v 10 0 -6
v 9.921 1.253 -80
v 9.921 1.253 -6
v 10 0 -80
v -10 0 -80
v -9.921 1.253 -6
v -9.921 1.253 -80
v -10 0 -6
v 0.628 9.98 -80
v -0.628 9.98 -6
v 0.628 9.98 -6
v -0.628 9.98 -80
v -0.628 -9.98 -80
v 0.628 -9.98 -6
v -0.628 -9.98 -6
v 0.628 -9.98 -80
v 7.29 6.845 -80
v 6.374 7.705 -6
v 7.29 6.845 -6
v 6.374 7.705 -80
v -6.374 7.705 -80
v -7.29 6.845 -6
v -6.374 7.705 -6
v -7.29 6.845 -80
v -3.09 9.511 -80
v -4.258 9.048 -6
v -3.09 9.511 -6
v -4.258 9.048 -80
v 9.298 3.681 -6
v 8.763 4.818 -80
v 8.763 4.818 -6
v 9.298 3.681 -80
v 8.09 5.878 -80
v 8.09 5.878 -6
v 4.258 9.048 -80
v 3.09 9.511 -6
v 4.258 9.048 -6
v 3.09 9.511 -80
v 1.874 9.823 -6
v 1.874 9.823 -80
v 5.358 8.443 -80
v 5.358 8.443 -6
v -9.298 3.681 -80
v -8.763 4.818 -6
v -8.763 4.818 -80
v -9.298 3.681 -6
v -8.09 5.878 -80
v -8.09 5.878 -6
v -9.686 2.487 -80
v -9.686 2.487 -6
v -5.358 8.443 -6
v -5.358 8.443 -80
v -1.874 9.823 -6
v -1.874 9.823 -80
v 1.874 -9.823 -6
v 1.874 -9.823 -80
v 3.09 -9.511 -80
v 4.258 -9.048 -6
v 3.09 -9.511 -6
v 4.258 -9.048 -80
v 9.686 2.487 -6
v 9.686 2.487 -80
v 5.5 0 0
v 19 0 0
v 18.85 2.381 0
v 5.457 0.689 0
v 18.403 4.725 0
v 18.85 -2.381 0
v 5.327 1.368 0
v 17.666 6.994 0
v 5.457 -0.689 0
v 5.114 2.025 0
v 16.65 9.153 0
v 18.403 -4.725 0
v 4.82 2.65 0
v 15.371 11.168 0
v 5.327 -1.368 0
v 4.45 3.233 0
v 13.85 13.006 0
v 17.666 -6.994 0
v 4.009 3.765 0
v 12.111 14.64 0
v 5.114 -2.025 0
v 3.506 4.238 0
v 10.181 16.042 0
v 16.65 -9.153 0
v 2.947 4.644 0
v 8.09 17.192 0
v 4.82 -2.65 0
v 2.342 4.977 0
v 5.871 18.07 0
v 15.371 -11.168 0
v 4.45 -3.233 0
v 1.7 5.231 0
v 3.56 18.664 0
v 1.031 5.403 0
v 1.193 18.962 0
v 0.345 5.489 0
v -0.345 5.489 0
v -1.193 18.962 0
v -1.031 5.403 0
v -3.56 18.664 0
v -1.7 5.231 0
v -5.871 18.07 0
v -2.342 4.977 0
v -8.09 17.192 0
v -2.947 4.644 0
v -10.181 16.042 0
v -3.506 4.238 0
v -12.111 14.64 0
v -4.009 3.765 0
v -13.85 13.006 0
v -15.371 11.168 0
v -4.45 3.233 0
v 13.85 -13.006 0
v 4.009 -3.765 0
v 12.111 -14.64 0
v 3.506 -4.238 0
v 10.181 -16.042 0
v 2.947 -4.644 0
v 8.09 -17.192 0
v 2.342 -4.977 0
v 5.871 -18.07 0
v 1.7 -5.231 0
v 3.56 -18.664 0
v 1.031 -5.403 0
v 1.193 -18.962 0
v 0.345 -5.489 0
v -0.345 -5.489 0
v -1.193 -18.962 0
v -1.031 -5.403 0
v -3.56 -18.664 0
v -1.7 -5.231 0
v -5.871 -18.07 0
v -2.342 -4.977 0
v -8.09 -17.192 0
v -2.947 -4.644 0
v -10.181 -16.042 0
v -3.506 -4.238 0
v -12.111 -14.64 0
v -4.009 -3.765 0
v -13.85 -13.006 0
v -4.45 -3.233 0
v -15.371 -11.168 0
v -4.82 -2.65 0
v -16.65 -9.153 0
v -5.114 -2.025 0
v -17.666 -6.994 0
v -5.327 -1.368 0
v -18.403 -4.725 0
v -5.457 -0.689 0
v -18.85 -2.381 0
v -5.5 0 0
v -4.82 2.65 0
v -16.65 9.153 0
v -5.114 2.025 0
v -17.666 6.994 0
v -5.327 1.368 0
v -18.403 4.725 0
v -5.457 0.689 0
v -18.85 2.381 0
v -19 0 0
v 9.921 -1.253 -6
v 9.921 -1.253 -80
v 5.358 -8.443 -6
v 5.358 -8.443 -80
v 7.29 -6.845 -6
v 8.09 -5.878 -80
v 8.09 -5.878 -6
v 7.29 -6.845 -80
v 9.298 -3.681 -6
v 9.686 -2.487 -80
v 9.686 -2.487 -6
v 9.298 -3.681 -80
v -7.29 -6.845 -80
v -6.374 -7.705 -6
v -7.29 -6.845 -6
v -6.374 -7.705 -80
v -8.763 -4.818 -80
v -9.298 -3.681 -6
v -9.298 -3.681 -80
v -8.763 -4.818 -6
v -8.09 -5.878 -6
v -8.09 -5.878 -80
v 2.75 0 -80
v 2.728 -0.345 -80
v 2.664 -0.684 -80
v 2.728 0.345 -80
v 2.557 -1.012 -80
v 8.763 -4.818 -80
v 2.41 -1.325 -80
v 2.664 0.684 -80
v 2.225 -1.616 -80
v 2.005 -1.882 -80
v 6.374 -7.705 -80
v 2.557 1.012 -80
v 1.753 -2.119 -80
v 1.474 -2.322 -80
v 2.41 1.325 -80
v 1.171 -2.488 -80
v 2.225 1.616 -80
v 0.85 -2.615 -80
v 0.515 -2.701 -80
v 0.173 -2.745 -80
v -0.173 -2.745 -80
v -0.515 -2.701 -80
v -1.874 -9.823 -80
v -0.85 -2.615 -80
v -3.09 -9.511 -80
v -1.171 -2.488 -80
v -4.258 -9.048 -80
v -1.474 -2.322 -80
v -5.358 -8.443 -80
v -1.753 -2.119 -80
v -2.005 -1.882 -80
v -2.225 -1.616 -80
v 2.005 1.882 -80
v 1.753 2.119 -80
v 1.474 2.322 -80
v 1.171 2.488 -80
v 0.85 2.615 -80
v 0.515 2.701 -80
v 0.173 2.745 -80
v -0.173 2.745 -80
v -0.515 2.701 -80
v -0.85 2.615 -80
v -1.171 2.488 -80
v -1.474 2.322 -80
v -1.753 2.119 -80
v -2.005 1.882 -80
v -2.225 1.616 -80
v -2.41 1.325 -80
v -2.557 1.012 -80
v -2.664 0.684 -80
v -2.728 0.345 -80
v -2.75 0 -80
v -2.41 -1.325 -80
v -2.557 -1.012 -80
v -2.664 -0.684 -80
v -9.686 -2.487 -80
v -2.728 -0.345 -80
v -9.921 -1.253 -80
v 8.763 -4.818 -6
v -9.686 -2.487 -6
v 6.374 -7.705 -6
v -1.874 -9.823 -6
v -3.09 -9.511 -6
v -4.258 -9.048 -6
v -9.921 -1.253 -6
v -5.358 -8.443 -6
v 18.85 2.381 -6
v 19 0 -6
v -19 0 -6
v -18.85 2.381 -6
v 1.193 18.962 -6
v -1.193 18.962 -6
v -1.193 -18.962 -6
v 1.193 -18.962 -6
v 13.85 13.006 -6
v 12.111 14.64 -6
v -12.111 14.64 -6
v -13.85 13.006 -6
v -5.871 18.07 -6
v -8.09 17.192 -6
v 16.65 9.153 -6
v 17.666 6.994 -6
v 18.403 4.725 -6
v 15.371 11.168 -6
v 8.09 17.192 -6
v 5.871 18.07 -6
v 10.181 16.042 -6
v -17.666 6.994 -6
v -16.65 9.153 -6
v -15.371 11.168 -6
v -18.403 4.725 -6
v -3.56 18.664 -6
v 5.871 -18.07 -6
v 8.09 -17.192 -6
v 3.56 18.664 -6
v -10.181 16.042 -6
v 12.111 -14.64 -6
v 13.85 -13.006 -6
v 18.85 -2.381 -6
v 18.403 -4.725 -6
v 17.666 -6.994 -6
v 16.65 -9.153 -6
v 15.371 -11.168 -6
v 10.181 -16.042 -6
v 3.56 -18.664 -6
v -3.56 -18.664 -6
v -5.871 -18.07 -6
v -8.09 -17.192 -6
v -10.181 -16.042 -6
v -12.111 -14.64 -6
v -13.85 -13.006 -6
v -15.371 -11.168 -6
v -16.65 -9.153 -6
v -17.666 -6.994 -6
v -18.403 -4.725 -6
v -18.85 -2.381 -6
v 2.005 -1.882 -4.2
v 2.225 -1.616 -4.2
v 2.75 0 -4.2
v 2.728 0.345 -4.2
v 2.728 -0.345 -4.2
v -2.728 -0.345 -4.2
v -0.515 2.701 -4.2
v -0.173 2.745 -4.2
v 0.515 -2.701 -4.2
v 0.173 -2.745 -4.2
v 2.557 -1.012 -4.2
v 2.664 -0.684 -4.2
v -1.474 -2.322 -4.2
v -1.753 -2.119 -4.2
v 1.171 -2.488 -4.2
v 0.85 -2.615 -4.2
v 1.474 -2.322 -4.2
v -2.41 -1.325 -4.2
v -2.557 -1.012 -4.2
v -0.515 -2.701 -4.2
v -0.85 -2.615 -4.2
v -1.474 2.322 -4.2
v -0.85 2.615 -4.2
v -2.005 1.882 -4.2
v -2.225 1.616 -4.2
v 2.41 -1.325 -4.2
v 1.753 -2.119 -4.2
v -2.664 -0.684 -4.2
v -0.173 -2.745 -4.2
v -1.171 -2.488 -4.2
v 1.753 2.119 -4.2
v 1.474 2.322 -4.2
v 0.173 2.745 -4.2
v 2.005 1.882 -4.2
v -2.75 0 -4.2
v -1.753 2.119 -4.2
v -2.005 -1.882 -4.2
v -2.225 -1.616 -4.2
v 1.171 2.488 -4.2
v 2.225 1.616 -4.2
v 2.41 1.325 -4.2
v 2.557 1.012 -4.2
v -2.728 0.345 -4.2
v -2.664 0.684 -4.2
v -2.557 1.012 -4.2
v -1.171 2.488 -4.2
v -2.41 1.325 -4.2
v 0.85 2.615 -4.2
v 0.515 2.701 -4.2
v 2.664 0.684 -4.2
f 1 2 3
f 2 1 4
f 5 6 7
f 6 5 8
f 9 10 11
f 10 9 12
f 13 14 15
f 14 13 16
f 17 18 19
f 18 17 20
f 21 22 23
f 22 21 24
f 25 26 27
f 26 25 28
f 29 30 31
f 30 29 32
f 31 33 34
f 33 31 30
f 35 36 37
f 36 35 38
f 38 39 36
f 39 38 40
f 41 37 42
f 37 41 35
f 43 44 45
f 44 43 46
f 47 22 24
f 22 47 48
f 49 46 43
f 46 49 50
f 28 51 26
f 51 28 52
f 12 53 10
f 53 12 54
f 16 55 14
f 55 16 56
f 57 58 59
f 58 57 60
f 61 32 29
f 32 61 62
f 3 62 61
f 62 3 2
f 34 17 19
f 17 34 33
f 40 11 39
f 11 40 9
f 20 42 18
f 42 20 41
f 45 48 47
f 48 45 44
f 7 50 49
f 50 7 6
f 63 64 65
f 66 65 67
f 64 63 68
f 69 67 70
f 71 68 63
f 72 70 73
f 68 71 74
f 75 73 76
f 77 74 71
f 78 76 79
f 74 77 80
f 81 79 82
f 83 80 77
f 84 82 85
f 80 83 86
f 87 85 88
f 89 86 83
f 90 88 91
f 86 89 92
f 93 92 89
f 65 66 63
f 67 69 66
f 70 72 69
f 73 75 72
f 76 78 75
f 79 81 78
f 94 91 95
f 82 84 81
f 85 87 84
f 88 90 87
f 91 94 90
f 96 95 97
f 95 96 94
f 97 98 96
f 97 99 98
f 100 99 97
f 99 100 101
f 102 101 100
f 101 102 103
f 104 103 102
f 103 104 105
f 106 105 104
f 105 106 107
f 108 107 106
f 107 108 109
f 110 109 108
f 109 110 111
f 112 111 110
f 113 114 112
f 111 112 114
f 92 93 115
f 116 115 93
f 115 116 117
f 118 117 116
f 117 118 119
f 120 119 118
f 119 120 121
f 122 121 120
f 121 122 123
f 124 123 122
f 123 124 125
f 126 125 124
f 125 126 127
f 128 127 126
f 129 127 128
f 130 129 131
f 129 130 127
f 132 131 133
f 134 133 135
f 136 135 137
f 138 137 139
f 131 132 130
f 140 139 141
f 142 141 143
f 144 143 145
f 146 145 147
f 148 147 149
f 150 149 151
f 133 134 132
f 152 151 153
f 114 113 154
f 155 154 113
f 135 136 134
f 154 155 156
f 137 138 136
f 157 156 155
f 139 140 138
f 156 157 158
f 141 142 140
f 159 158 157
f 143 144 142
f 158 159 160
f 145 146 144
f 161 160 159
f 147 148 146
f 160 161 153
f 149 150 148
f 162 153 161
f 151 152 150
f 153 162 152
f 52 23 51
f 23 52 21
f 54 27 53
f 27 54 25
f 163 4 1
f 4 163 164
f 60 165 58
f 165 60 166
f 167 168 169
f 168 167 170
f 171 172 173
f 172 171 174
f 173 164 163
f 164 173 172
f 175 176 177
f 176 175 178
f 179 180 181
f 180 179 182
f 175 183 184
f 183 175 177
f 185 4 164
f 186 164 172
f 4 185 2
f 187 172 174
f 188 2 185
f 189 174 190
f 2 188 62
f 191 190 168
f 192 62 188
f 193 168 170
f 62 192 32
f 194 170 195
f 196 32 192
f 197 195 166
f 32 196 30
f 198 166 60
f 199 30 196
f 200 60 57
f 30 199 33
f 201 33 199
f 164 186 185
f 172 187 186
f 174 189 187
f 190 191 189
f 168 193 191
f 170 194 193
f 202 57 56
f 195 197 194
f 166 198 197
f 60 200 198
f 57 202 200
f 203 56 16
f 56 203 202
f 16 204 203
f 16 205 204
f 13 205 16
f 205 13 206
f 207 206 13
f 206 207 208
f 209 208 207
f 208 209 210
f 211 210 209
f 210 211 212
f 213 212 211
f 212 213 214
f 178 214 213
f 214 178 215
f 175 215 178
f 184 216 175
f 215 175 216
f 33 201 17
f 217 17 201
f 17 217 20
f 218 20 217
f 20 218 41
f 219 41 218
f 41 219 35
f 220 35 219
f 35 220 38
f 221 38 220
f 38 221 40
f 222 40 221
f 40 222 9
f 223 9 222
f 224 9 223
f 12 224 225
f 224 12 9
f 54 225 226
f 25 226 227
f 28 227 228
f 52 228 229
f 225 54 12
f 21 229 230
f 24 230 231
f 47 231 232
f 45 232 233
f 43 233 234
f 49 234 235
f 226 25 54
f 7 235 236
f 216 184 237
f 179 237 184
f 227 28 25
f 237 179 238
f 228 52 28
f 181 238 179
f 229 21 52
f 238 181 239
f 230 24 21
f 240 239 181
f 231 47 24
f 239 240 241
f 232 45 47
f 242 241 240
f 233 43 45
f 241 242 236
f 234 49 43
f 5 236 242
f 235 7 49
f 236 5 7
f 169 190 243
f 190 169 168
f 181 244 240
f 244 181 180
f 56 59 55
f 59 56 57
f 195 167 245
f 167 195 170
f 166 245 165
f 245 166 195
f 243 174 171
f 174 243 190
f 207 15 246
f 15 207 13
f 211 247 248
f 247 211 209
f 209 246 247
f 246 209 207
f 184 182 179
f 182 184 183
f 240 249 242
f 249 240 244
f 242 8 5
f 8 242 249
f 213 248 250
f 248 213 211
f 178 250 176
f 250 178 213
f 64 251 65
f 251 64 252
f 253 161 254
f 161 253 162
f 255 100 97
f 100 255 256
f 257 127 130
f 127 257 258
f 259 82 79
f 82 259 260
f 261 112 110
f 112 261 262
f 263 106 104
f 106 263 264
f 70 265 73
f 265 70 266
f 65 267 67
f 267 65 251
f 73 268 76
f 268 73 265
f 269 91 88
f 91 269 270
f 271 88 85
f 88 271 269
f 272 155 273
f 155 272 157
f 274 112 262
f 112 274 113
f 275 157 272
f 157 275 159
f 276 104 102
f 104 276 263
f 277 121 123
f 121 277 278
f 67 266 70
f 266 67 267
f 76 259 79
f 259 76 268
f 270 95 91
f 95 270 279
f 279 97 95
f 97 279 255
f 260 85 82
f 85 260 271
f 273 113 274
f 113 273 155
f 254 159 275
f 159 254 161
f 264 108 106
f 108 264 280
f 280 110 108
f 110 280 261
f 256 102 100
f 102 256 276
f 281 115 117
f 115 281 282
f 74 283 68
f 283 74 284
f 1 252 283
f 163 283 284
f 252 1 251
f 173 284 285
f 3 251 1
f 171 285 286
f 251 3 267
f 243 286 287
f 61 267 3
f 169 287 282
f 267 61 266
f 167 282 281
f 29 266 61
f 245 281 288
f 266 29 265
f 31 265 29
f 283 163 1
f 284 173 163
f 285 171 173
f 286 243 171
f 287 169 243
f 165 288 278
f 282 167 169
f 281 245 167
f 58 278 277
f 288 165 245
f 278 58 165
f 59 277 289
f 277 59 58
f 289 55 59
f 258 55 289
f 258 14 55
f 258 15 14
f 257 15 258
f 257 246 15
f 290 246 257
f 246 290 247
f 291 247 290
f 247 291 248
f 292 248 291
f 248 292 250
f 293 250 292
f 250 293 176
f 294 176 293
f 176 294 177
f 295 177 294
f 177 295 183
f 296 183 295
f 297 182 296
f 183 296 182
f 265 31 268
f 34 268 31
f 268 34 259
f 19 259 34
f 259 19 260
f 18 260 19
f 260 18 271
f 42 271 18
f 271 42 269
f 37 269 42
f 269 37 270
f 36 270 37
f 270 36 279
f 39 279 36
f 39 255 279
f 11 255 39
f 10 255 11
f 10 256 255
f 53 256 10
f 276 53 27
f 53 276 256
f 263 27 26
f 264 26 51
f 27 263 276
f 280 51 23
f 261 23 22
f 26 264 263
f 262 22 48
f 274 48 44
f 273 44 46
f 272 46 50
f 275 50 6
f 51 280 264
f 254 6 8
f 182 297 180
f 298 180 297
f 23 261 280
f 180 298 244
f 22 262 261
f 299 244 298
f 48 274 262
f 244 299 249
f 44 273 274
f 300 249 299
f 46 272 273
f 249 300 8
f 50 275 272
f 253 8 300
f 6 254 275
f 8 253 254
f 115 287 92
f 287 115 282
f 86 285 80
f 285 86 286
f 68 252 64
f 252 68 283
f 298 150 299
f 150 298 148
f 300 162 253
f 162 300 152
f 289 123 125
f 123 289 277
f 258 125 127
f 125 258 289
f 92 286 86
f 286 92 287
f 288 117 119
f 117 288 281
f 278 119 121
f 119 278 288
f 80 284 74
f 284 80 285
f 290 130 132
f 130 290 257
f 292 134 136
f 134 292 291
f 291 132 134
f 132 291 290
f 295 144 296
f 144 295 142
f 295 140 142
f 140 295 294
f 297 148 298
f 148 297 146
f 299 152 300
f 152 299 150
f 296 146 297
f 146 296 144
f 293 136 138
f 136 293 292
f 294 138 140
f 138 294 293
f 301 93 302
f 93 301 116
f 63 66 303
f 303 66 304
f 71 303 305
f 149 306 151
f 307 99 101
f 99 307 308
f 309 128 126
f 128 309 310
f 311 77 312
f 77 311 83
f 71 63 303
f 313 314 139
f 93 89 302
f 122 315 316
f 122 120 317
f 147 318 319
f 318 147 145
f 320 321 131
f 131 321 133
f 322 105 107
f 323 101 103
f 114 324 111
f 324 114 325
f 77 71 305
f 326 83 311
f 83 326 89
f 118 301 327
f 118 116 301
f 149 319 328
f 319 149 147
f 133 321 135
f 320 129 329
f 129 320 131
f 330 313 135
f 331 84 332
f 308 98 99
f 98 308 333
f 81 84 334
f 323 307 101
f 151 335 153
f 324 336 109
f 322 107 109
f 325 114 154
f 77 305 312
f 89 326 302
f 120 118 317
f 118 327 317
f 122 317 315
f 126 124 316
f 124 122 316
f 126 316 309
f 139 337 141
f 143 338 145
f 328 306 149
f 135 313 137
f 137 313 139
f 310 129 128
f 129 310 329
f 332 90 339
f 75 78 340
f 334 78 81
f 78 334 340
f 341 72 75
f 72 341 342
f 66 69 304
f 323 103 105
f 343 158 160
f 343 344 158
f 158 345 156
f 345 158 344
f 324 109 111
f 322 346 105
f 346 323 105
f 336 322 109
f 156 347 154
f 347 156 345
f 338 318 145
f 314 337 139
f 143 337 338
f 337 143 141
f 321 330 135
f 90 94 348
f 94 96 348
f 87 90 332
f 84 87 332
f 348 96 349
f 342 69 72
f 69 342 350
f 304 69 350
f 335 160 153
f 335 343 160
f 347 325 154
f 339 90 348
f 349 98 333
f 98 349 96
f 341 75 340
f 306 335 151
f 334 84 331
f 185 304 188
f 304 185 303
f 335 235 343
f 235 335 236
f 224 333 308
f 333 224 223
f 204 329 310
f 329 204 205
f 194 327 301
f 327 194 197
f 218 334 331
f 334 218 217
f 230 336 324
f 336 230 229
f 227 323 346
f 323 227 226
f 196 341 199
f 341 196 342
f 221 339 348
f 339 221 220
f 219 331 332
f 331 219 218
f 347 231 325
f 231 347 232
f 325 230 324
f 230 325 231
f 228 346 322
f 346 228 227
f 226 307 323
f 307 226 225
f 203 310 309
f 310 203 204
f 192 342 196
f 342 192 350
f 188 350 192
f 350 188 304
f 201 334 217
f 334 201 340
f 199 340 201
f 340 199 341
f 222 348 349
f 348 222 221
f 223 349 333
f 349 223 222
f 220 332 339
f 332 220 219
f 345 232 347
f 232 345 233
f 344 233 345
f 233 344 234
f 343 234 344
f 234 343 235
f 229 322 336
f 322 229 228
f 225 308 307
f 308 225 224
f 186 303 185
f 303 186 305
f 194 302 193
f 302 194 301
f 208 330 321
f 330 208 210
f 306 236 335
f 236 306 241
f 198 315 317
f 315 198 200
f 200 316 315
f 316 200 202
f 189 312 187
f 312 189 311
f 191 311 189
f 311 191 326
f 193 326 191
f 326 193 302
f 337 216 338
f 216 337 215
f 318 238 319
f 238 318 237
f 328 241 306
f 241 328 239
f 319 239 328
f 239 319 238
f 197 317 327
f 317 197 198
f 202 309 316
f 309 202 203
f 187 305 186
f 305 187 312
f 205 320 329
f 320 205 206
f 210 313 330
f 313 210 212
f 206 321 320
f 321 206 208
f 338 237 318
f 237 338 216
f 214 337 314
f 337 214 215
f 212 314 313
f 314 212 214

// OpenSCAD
$fn = 50;


difference() {
	union() {
		translate(v = [0, 0, -80.0000000000]) {
			cylinder(h = 80, r = 10.0000000000);
		}
		translate(v = [0, 0, -6.0000000000]) {
			cylinder(h = 6, r = 19.0000000000);
		}
	}
	union() {
		translate(v = [0, 0, 0]) {
			rotate(a = [0, 0, 0]) {
				difference() {
					union() {
						#translate(v = [0, 0, -80.0000000000]) {
							cylinder(h = 80, r = 2.2500000000);
						}
						#translate(v = [0, 0, -4.2000000000]) {
							cylinder(h = 4.2000000000, r1 = 2.7500000000, r2 = 5.5000000000);
						}
						#translate(v = [0, 0, -80.0000000000]) {
							cylinder(h = 80, r = 2.7500000000);
						}
						#translate(v = [0, 0, -80.0000000000]) {
							cylinder(h = 80, r = 2.2500000000);
						}
					}
					union();
				}
			}
		}
	}
}
